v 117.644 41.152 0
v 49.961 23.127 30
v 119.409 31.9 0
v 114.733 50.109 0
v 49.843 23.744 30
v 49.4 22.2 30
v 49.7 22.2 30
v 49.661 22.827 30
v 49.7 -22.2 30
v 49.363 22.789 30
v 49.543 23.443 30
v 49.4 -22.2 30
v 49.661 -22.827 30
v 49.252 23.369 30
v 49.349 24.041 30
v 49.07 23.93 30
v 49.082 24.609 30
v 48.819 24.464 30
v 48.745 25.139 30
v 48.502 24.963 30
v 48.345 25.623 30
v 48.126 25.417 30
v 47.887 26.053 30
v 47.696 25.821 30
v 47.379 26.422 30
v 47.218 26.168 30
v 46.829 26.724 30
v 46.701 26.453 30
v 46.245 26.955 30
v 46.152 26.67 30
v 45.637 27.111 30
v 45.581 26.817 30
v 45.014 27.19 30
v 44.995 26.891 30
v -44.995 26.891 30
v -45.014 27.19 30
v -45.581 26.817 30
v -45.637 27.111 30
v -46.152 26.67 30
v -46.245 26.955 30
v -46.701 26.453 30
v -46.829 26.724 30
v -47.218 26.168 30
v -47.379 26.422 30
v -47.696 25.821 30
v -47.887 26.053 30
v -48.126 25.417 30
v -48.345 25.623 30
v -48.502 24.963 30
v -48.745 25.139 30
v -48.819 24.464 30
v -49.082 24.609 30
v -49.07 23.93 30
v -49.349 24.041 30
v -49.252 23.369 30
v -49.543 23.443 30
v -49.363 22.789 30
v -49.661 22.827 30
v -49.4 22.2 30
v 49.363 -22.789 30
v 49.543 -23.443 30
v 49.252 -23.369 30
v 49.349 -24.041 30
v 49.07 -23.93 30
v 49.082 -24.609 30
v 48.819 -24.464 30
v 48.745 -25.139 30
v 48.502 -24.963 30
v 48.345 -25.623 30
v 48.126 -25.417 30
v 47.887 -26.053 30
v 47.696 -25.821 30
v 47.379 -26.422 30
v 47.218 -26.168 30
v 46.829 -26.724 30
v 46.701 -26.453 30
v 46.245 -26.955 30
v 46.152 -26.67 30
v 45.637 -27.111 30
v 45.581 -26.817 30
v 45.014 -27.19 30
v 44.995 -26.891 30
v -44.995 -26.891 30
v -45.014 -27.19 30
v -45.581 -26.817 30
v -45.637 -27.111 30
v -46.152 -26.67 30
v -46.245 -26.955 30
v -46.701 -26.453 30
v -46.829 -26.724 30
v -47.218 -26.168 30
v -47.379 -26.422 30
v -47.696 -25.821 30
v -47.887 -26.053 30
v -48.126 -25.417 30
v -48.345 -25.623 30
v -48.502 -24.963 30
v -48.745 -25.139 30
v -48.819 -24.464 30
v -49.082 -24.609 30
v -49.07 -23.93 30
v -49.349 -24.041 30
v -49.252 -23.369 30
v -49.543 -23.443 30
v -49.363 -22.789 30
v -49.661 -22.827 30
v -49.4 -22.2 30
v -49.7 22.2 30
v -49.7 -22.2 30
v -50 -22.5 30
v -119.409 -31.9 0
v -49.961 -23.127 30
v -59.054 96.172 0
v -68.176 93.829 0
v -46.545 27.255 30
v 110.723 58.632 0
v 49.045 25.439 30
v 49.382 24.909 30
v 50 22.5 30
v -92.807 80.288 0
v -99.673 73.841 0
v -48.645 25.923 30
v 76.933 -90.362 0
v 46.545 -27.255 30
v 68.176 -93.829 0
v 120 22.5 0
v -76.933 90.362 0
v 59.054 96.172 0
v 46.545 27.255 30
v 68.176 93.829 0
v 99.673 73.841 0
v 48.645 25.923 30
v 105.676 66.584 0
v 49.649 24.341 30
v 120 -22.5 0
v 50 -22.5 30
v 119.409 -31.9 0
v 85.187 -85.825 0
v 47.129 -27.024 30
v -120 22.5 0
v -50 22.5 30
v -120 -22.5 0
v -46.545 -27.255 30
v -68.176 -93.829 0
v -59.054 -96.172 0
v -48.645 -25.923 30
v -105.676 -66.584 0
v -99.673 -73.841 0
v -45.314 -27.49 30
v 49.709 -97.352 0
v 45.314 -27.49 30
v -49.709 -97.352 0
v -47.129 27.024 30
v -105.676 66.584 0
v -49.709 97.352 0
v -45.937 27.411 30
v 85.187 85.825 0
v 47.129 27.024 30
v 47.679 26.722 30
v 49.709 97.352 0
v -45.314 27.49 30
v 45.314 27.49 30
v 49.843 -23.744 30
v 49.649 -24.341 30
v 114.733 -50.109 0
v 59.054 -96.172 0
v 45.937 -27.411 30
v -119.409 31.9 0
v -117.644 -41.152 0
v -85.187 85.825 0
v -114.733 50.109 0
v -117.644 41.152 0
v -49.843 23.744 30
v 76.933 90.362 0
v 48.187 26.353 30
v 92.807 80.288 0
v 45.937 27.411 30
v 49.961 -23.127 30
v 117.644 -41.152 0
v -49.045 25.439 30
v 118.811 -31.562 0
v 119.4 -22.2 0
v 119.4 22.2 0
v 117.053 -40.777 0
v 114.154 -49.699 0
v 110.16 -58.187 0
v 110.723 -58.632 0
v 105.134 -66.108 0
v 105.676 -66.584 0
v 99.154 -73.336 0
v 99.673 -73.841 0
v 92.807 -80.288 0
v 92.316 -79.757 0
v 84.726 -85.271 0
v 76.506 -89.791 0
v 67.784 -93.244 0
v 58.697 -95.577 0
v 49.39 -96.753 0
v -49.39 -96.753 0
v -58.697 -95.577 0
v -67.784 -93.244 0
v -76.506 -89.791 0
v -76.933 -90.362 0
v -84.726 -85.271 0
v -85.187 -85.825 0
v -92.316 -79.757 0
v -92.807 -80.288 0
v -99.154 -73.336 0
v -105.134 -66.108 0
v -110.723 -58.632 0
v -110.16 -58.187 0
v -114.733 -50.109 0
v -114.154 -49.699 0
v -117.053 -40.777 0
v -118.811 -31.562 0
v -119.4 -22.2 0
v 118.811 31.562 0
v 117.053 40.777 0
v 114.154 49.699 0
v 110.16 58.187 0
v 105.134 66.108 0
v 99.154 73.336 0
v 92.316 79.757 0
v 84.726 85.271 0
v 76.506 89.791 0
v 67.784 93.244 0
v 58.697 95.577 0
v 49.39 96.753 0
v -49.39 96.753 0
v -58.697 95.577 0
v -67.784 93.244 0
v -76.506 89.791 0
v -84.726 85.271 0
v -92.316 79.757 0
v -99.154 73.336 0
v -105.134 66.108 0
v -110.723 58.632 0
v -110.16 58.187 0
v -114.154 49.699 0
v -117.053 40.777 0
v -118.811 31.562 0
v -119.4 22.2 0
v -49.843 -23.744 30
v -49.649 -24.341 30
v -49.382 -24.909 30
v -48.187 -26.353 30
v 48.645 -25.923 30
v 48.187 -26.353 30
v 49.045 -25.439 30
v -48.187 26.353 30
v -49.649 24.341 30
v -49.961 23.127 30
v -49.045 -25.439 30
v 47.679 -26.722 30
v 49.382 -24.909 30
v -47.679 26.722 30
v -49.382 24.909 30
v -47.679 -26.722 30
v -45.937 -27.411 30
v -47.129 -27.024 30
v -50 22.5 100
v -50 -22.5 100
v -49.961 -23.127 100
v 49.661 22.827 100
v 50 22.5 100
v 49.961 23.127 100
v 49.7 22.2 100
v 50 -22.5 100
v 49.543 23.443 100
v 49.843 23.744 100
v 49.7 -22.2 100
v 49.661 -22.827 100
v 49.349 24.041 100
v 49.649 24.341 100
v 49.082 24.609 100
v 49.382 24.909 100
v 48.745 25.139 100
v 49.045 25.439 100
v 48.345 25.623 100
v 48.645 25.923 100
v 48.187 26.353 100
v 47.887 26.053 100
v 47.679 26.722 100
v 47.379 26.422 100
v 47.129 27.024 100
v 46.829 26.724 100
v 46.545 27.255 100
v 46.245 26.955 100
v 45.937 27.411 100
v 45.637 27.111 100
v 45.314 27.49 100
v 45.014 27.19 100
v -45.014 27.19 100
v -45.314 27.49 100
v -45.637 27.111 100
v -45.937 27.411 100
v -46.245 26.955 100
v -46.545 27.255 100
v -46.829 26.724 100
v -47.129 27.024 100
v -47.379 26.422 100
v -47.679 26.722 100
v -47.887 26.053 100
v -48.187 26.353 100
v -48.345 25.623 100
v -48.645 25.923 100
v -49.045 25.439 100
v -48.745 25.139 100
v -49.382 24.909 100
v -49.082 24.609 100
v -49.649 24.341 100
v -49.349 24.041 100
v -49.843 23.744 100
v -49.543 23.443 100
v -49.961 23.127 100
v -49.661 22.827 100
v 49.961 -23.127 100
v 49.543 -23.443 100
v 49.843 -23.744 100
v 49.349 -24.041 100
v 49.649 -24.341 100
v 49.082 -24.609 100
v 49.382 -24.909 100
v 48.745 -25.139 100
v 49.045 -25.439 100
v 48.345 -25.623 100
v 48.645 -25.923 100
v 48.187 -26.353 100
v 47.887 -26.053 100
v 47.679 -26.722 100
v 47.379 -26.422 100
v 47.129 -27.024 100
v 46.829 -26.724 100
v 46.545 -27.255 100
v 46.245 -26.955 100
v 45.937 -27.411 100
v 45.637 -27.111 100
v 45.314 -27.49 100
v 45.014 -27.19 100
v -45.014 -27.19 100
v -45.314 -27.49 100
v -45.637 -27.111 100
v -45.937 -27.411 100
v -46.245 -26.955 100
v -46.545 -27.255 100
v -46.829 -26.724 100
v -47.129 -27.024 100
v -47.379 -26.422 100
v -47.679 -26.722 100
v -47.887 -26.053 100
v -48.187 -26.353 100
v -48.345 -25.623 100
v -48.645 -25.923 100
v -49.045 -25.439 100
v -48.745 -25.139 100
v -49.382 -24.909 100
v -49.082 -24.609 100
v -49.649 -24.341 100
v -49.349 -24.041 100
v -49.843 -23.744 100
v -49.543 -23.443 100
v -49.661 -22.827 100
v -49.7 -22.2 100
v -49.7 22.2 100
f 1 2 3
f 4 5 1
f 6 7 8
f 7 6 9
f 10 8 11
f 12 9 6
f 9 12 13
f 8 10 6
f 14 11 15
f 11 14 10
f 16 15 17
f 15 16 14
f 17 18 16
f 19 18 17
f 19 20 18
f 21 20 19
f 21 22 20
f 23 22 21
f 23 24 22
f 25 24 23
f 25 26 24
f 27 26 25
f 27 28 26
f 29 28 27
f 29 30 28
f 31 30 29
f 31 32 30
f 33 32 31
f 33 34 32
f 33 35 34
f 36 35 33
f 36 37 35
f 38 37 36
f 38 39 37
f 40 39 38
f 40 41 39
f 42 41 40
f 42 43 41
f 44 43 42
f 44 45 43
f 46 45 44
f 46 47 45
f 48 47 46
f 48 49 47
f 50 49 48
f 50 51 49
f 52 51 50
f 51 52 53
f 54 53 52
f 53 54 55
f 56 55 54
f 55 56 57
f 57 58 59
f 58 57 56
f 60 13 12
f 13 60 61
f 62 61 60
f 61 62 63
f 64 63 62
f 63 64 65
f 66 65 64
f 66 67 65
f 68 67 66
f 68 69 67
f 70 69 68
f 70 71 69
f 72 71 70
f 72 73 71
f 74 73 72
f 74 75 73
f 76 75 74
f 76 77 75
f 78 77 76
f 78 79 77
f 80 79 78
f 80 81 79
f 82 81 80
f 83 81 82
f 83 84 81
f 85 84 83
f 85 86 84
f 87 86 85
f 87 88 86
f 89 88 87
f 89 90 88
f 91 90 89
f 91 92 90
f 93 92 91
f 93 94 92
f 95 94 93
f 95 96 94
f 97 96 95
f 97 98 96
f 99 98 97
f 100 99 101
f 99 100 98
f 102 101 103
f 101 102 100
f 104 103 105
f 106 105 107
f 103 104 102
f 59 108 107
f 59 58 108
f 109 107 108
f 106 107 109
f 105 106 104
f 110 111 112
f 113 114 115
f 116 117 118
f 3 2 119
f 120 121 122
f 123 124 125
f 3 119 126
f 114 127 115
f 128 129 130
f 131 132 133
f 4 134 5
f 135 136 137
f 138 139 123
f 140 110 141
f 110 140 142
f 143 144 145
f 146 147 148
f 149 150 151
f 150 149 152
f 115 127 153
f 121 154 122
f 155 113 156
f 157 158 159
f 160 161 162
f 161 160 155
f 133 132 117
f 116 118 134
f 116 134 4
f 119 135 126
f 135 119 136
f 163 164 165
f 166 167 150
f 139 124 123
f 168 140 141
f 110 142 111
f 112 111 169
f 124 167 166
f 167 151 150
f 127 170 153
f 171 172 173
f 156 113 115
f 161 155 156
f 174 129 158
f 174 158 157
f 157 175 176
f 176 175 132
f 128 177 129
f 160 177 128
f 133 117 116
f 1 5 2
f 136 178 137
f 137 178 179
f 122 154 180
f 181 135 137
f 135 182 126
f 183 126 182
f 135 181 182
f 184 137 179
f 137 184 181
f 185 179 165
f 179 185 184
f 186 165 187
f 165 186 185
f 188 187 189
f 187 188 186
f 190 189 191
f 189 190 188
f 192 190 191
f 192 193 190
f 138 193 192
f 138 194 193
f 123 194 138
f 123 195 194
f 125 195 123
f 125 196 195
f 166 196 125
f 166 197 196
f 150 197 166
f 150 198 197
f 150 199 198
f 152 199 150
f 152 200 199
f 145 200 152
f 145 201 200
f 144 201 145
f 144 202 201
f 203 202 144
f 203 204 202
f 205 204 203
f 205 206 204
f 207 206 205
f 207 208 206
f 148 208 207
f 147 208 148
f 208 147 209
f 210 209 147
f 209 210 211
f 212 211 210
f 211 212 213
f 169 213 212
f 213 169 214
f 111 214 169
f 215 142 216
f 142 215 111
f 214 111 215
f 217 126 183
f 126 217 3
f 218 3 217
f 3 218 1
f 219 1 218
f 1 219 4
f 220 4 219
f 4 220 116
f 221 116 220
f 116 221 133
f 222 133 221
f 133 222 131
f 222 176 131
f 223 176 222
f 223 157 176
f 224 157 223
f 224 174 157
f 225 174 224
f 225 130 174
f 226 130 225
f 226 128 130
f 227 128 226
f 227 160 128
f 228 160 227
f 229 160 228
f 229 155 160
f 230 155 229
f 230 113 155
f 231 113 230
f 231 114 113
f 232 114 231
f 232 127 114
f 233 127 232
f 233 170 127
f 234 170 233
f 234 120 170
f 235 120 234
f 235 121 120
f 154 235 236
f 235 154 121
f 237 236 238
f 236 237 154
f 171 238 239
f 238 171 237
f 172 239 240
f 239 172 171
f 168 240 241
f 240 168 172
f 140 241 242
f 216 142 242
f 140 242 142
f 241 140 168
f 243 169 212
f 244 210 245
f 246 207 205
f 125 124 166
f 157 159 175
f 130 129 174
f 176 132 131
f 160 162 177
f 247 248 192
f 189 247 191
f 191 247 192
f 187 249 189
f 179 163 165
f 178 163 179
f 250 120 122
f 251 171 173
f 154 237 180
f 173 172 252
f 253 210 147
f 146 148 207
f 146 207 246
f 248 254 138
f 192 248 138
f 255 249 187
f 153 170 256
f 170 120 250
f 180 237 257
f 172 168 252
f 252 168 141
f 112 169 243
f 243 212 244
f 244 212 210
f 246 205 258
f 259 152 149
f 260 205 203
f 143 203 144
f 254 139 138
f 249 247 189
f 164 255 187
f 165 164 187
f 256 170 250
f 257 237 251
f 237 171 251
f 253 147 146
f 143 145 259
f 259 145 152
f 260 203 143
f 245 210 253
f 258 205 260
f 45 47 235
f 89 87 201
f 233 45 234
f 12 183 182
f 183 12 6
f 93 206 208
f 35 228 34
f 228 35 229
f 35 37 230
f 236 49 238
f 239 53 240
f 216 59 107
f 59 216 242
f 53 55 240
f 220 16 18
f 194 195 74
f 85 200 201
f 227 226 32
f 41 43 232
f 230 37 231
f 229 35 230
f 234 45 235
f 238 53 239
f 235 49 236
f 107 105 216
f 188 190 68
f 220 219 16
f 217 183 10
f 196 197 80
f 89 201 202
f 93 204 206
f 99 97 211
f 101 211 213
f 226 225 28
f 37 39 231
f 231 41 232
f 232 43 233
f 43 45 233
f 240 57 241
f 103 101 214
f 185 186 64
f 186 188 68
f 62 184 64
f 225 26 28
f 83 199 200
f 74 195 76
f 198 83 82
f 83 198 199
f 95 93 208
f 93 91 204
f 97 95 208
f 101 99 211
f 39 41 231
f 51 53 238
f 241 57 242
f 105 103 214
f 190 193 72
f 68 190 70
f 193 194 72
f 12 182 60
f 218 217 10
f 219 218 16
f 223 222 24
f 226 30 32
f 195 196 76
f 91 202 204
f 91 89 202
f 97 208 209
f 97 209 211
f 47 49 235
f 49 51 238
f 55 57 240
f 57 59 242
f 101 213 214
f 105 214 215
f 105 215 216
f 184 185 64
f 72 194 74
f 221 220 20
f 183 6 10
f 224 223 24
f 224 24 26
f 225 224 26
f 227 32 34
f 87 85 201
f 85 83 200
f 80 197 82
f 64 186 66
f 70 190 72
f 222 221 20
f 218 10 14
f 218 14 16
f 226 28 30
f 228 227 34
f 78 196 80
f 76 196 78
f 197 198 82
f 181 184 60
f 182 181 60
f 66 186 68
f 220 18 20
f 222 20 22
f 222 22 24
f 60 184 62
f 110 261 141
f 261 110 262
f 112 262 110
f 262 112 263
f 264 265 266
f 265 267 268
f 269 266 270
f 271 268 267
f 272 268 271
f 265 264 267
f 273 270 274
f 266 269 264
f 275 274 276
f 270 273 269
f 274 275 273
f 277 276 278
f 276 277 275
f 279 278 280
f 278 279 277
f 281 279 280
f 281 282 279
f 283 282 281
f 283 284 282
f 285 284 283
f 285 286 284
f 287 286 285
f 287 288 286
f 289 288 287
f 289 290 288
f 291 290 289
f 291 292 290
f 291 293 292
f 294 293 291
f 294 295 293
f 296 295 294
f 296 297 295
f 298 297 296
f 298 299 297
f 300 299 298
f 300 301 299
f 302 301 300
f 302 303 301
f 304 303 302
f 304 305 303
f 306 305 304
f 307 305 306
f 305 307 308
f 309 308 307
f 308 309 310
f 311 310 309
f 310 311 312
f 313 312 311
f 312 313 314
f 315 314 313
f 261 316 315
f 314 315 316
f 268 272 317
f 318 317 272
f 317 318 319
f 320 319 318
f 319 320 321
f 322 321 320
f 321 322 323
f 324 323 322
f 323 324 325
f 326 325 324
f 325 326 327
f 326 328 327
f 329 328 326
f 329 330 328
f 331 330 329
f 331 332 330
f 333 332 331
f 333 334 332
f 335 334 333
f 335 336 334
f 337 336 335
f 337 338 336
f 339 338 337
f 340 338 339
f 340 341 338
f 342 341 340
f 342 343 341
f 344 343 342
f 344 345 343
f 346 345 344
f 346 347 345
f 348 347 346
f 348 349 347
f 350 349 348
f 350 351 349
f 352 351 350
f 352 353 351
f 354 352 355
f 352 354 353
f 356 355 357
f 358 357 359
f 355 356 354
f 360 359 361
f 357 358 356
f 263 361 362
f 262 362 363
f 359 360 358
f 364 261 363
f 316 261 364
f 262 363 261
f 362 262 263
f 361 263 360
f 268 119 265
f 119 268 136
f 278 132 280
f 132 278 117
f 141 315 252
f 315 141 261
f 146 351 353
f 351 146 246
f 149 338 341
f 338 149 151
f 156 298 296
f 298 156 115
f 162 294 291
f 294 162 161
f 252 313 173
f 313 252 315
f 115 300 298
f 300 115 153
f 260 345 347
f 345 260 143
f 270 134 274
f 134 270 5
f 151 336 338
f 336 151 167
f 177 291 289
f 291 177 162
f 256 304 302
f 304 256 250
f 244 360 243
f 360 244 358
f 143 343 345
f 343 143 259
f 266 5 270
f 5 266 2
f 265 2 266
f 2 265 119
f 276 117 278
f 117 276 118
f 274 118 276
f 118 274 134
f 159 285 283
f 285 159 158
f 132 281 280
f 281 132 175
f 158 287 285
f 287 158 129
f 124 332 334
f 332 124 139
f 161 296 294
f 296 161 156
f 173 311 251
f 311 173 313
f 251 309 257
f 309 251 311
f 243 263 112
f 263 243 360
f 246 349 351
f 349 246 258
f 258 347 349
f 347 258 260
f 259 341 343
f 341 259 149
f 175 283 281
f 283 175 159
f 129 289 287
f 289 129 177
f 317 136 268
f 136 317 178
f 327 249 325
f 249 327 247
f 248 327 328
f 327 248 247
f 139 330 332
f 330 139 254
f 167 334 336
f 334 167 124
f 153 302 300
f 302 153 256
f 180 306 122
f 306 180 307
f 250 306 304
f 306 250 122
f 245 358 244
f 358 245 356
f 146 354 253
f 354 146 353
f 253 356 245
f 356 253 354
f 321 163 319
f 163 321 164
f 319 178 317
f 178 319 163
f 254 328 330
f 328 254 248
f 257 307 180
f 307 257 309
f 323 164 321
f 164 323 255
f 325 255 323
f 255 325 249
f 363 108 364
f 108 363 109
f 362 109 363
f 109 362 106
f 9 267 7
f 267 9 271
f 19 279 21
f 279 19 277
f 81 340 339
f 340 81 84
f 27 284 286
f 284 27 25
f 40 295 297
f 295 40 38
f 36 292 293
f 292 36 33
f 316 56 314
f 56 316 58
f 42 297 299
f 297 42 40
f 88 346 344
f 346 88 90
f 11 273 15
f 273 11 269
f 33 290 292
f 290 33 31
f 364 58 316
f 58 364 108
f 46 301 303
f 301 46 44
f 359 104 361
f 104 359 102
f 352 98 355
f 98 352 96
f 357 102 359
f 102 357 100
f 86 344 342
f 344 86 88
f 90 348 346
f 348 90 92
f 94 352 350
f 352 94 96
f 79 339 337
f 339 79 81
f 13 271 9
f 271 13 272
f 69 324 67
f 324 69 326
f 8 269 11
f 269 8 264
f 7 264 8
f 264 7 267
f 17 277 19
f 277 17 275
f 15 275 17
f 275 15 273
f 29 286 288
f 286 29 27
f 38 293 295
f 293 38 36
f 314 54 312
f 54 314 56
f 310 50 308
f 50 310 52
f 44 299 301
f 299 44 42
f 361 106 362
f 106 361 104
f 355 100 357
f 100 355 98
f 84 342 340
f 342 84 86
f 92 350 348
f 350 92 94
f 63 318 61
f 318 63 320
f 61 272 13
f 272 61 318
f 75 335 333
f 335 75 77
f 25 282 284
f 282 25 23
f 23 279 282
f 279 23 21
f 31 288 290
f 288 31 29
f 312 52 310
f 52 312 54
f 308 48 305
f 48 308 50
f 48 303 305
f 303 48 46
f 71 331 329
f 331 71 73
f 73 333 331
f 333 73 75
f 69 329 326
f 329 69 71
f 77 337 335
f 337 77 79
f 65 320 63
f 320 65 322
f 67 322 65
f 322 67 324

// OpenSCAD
$fn = 50;


difference() {
	union() {
		translate(v = [0, 0, 0]) {
			rotate(a = [0, 0, 0]) {
				difference() {
					union() {
						hull() {
							translate(v = [-45.0000000000, 22.5000000000, 0]) {
								cylinder(h = 30, r = 5, r1 = 75.0000000000, r2 = 5);
							}
							translate(v = [45.0000000000, 22.5000000000, 0]) {
								cylinder(h = 30, r = 5, r1 = 75.0000000000, r2 = 5);
							}
							translate(v = [-45.0000000000, -22.5000000000, 0]) {
								cylinder(h = 30, r = 5, r1 = 75.0000000000, r2 = 5);
							}
							translate(v = [45.0000000000, -22.5000000000, 0]) {
								cylinder(h = 30, r = 5, r1 = 75.0000000000, r2 = 5);
							}
						}
					}
					union() {
						hull() {
							translate(v = [-44.7000000000, 22.2000000000, 0]) {
								cylinder(h = 30, r = 5, r1 = 74.7000000000, r2 = 4.7000000000);
							}
							translate(v = [44.7000000000, 22.2000000000, 0]) {
								cylinder(h = 30, r = 5, r1 = 74.7000000000, r2 = 4.7000000000);
							}
							translate(v = [-44.7000000000, -22.2000000000, 0]) {
								cylinder(h = 30, r = 5, r1 = 74.7000000000, r2 = 4.7000000000);
							}
							translate(v = [44.7000000000, -22.2000000000, 0]) {
								cylinder(h = 30, r = 5, r1 = 74.7000000000, r2 = 4.7000000000);
							}
						}
					}
				}
			}
		}
		translate(v = [0, 0, 30]) {
			rotate(a = [0, 0, 0]) {
				difference() {
					union() {
						hull() {
							translate(v = [-45.0000000000, 22.5000000000, 0]) {
								cylinder(h = 70, r = 5);
							}
							translate(v = [45.0000000000, 22.5000000000, 0]) {
								cylinder(h = 70, r = 5);
							}
							translate(v = [-45.0000000000, -22.5000000000, 0]) {
								cylinder(h = 70, r = 5);
							}
							translate(v = [45.0000000000, -22.5000000000, 0]) {
								cylinder(h = 70, r = 5);
							}
						}
					}
					union() {
						hull() {
							translate(v = [-44.7000000000, 22.2000000000, 0]) {
								cylinder(h = 70, r = 5);
							}
							translate(v = [44.7000000000, 22.2000000000, 0]) {
								cylinder(h = 70, r = 5);
							}
							translate(v = [-44.7000000000, -22.2000000000, 0]) {
								cylinder(h = 70, r = 5);
							}
							translate(v = [44.7000000000, -22.2000000000, 0]) {
								cylinder(h = 70, r = 5);
							}
						}
					}
				}
			}
		}
	}
	union();
}
